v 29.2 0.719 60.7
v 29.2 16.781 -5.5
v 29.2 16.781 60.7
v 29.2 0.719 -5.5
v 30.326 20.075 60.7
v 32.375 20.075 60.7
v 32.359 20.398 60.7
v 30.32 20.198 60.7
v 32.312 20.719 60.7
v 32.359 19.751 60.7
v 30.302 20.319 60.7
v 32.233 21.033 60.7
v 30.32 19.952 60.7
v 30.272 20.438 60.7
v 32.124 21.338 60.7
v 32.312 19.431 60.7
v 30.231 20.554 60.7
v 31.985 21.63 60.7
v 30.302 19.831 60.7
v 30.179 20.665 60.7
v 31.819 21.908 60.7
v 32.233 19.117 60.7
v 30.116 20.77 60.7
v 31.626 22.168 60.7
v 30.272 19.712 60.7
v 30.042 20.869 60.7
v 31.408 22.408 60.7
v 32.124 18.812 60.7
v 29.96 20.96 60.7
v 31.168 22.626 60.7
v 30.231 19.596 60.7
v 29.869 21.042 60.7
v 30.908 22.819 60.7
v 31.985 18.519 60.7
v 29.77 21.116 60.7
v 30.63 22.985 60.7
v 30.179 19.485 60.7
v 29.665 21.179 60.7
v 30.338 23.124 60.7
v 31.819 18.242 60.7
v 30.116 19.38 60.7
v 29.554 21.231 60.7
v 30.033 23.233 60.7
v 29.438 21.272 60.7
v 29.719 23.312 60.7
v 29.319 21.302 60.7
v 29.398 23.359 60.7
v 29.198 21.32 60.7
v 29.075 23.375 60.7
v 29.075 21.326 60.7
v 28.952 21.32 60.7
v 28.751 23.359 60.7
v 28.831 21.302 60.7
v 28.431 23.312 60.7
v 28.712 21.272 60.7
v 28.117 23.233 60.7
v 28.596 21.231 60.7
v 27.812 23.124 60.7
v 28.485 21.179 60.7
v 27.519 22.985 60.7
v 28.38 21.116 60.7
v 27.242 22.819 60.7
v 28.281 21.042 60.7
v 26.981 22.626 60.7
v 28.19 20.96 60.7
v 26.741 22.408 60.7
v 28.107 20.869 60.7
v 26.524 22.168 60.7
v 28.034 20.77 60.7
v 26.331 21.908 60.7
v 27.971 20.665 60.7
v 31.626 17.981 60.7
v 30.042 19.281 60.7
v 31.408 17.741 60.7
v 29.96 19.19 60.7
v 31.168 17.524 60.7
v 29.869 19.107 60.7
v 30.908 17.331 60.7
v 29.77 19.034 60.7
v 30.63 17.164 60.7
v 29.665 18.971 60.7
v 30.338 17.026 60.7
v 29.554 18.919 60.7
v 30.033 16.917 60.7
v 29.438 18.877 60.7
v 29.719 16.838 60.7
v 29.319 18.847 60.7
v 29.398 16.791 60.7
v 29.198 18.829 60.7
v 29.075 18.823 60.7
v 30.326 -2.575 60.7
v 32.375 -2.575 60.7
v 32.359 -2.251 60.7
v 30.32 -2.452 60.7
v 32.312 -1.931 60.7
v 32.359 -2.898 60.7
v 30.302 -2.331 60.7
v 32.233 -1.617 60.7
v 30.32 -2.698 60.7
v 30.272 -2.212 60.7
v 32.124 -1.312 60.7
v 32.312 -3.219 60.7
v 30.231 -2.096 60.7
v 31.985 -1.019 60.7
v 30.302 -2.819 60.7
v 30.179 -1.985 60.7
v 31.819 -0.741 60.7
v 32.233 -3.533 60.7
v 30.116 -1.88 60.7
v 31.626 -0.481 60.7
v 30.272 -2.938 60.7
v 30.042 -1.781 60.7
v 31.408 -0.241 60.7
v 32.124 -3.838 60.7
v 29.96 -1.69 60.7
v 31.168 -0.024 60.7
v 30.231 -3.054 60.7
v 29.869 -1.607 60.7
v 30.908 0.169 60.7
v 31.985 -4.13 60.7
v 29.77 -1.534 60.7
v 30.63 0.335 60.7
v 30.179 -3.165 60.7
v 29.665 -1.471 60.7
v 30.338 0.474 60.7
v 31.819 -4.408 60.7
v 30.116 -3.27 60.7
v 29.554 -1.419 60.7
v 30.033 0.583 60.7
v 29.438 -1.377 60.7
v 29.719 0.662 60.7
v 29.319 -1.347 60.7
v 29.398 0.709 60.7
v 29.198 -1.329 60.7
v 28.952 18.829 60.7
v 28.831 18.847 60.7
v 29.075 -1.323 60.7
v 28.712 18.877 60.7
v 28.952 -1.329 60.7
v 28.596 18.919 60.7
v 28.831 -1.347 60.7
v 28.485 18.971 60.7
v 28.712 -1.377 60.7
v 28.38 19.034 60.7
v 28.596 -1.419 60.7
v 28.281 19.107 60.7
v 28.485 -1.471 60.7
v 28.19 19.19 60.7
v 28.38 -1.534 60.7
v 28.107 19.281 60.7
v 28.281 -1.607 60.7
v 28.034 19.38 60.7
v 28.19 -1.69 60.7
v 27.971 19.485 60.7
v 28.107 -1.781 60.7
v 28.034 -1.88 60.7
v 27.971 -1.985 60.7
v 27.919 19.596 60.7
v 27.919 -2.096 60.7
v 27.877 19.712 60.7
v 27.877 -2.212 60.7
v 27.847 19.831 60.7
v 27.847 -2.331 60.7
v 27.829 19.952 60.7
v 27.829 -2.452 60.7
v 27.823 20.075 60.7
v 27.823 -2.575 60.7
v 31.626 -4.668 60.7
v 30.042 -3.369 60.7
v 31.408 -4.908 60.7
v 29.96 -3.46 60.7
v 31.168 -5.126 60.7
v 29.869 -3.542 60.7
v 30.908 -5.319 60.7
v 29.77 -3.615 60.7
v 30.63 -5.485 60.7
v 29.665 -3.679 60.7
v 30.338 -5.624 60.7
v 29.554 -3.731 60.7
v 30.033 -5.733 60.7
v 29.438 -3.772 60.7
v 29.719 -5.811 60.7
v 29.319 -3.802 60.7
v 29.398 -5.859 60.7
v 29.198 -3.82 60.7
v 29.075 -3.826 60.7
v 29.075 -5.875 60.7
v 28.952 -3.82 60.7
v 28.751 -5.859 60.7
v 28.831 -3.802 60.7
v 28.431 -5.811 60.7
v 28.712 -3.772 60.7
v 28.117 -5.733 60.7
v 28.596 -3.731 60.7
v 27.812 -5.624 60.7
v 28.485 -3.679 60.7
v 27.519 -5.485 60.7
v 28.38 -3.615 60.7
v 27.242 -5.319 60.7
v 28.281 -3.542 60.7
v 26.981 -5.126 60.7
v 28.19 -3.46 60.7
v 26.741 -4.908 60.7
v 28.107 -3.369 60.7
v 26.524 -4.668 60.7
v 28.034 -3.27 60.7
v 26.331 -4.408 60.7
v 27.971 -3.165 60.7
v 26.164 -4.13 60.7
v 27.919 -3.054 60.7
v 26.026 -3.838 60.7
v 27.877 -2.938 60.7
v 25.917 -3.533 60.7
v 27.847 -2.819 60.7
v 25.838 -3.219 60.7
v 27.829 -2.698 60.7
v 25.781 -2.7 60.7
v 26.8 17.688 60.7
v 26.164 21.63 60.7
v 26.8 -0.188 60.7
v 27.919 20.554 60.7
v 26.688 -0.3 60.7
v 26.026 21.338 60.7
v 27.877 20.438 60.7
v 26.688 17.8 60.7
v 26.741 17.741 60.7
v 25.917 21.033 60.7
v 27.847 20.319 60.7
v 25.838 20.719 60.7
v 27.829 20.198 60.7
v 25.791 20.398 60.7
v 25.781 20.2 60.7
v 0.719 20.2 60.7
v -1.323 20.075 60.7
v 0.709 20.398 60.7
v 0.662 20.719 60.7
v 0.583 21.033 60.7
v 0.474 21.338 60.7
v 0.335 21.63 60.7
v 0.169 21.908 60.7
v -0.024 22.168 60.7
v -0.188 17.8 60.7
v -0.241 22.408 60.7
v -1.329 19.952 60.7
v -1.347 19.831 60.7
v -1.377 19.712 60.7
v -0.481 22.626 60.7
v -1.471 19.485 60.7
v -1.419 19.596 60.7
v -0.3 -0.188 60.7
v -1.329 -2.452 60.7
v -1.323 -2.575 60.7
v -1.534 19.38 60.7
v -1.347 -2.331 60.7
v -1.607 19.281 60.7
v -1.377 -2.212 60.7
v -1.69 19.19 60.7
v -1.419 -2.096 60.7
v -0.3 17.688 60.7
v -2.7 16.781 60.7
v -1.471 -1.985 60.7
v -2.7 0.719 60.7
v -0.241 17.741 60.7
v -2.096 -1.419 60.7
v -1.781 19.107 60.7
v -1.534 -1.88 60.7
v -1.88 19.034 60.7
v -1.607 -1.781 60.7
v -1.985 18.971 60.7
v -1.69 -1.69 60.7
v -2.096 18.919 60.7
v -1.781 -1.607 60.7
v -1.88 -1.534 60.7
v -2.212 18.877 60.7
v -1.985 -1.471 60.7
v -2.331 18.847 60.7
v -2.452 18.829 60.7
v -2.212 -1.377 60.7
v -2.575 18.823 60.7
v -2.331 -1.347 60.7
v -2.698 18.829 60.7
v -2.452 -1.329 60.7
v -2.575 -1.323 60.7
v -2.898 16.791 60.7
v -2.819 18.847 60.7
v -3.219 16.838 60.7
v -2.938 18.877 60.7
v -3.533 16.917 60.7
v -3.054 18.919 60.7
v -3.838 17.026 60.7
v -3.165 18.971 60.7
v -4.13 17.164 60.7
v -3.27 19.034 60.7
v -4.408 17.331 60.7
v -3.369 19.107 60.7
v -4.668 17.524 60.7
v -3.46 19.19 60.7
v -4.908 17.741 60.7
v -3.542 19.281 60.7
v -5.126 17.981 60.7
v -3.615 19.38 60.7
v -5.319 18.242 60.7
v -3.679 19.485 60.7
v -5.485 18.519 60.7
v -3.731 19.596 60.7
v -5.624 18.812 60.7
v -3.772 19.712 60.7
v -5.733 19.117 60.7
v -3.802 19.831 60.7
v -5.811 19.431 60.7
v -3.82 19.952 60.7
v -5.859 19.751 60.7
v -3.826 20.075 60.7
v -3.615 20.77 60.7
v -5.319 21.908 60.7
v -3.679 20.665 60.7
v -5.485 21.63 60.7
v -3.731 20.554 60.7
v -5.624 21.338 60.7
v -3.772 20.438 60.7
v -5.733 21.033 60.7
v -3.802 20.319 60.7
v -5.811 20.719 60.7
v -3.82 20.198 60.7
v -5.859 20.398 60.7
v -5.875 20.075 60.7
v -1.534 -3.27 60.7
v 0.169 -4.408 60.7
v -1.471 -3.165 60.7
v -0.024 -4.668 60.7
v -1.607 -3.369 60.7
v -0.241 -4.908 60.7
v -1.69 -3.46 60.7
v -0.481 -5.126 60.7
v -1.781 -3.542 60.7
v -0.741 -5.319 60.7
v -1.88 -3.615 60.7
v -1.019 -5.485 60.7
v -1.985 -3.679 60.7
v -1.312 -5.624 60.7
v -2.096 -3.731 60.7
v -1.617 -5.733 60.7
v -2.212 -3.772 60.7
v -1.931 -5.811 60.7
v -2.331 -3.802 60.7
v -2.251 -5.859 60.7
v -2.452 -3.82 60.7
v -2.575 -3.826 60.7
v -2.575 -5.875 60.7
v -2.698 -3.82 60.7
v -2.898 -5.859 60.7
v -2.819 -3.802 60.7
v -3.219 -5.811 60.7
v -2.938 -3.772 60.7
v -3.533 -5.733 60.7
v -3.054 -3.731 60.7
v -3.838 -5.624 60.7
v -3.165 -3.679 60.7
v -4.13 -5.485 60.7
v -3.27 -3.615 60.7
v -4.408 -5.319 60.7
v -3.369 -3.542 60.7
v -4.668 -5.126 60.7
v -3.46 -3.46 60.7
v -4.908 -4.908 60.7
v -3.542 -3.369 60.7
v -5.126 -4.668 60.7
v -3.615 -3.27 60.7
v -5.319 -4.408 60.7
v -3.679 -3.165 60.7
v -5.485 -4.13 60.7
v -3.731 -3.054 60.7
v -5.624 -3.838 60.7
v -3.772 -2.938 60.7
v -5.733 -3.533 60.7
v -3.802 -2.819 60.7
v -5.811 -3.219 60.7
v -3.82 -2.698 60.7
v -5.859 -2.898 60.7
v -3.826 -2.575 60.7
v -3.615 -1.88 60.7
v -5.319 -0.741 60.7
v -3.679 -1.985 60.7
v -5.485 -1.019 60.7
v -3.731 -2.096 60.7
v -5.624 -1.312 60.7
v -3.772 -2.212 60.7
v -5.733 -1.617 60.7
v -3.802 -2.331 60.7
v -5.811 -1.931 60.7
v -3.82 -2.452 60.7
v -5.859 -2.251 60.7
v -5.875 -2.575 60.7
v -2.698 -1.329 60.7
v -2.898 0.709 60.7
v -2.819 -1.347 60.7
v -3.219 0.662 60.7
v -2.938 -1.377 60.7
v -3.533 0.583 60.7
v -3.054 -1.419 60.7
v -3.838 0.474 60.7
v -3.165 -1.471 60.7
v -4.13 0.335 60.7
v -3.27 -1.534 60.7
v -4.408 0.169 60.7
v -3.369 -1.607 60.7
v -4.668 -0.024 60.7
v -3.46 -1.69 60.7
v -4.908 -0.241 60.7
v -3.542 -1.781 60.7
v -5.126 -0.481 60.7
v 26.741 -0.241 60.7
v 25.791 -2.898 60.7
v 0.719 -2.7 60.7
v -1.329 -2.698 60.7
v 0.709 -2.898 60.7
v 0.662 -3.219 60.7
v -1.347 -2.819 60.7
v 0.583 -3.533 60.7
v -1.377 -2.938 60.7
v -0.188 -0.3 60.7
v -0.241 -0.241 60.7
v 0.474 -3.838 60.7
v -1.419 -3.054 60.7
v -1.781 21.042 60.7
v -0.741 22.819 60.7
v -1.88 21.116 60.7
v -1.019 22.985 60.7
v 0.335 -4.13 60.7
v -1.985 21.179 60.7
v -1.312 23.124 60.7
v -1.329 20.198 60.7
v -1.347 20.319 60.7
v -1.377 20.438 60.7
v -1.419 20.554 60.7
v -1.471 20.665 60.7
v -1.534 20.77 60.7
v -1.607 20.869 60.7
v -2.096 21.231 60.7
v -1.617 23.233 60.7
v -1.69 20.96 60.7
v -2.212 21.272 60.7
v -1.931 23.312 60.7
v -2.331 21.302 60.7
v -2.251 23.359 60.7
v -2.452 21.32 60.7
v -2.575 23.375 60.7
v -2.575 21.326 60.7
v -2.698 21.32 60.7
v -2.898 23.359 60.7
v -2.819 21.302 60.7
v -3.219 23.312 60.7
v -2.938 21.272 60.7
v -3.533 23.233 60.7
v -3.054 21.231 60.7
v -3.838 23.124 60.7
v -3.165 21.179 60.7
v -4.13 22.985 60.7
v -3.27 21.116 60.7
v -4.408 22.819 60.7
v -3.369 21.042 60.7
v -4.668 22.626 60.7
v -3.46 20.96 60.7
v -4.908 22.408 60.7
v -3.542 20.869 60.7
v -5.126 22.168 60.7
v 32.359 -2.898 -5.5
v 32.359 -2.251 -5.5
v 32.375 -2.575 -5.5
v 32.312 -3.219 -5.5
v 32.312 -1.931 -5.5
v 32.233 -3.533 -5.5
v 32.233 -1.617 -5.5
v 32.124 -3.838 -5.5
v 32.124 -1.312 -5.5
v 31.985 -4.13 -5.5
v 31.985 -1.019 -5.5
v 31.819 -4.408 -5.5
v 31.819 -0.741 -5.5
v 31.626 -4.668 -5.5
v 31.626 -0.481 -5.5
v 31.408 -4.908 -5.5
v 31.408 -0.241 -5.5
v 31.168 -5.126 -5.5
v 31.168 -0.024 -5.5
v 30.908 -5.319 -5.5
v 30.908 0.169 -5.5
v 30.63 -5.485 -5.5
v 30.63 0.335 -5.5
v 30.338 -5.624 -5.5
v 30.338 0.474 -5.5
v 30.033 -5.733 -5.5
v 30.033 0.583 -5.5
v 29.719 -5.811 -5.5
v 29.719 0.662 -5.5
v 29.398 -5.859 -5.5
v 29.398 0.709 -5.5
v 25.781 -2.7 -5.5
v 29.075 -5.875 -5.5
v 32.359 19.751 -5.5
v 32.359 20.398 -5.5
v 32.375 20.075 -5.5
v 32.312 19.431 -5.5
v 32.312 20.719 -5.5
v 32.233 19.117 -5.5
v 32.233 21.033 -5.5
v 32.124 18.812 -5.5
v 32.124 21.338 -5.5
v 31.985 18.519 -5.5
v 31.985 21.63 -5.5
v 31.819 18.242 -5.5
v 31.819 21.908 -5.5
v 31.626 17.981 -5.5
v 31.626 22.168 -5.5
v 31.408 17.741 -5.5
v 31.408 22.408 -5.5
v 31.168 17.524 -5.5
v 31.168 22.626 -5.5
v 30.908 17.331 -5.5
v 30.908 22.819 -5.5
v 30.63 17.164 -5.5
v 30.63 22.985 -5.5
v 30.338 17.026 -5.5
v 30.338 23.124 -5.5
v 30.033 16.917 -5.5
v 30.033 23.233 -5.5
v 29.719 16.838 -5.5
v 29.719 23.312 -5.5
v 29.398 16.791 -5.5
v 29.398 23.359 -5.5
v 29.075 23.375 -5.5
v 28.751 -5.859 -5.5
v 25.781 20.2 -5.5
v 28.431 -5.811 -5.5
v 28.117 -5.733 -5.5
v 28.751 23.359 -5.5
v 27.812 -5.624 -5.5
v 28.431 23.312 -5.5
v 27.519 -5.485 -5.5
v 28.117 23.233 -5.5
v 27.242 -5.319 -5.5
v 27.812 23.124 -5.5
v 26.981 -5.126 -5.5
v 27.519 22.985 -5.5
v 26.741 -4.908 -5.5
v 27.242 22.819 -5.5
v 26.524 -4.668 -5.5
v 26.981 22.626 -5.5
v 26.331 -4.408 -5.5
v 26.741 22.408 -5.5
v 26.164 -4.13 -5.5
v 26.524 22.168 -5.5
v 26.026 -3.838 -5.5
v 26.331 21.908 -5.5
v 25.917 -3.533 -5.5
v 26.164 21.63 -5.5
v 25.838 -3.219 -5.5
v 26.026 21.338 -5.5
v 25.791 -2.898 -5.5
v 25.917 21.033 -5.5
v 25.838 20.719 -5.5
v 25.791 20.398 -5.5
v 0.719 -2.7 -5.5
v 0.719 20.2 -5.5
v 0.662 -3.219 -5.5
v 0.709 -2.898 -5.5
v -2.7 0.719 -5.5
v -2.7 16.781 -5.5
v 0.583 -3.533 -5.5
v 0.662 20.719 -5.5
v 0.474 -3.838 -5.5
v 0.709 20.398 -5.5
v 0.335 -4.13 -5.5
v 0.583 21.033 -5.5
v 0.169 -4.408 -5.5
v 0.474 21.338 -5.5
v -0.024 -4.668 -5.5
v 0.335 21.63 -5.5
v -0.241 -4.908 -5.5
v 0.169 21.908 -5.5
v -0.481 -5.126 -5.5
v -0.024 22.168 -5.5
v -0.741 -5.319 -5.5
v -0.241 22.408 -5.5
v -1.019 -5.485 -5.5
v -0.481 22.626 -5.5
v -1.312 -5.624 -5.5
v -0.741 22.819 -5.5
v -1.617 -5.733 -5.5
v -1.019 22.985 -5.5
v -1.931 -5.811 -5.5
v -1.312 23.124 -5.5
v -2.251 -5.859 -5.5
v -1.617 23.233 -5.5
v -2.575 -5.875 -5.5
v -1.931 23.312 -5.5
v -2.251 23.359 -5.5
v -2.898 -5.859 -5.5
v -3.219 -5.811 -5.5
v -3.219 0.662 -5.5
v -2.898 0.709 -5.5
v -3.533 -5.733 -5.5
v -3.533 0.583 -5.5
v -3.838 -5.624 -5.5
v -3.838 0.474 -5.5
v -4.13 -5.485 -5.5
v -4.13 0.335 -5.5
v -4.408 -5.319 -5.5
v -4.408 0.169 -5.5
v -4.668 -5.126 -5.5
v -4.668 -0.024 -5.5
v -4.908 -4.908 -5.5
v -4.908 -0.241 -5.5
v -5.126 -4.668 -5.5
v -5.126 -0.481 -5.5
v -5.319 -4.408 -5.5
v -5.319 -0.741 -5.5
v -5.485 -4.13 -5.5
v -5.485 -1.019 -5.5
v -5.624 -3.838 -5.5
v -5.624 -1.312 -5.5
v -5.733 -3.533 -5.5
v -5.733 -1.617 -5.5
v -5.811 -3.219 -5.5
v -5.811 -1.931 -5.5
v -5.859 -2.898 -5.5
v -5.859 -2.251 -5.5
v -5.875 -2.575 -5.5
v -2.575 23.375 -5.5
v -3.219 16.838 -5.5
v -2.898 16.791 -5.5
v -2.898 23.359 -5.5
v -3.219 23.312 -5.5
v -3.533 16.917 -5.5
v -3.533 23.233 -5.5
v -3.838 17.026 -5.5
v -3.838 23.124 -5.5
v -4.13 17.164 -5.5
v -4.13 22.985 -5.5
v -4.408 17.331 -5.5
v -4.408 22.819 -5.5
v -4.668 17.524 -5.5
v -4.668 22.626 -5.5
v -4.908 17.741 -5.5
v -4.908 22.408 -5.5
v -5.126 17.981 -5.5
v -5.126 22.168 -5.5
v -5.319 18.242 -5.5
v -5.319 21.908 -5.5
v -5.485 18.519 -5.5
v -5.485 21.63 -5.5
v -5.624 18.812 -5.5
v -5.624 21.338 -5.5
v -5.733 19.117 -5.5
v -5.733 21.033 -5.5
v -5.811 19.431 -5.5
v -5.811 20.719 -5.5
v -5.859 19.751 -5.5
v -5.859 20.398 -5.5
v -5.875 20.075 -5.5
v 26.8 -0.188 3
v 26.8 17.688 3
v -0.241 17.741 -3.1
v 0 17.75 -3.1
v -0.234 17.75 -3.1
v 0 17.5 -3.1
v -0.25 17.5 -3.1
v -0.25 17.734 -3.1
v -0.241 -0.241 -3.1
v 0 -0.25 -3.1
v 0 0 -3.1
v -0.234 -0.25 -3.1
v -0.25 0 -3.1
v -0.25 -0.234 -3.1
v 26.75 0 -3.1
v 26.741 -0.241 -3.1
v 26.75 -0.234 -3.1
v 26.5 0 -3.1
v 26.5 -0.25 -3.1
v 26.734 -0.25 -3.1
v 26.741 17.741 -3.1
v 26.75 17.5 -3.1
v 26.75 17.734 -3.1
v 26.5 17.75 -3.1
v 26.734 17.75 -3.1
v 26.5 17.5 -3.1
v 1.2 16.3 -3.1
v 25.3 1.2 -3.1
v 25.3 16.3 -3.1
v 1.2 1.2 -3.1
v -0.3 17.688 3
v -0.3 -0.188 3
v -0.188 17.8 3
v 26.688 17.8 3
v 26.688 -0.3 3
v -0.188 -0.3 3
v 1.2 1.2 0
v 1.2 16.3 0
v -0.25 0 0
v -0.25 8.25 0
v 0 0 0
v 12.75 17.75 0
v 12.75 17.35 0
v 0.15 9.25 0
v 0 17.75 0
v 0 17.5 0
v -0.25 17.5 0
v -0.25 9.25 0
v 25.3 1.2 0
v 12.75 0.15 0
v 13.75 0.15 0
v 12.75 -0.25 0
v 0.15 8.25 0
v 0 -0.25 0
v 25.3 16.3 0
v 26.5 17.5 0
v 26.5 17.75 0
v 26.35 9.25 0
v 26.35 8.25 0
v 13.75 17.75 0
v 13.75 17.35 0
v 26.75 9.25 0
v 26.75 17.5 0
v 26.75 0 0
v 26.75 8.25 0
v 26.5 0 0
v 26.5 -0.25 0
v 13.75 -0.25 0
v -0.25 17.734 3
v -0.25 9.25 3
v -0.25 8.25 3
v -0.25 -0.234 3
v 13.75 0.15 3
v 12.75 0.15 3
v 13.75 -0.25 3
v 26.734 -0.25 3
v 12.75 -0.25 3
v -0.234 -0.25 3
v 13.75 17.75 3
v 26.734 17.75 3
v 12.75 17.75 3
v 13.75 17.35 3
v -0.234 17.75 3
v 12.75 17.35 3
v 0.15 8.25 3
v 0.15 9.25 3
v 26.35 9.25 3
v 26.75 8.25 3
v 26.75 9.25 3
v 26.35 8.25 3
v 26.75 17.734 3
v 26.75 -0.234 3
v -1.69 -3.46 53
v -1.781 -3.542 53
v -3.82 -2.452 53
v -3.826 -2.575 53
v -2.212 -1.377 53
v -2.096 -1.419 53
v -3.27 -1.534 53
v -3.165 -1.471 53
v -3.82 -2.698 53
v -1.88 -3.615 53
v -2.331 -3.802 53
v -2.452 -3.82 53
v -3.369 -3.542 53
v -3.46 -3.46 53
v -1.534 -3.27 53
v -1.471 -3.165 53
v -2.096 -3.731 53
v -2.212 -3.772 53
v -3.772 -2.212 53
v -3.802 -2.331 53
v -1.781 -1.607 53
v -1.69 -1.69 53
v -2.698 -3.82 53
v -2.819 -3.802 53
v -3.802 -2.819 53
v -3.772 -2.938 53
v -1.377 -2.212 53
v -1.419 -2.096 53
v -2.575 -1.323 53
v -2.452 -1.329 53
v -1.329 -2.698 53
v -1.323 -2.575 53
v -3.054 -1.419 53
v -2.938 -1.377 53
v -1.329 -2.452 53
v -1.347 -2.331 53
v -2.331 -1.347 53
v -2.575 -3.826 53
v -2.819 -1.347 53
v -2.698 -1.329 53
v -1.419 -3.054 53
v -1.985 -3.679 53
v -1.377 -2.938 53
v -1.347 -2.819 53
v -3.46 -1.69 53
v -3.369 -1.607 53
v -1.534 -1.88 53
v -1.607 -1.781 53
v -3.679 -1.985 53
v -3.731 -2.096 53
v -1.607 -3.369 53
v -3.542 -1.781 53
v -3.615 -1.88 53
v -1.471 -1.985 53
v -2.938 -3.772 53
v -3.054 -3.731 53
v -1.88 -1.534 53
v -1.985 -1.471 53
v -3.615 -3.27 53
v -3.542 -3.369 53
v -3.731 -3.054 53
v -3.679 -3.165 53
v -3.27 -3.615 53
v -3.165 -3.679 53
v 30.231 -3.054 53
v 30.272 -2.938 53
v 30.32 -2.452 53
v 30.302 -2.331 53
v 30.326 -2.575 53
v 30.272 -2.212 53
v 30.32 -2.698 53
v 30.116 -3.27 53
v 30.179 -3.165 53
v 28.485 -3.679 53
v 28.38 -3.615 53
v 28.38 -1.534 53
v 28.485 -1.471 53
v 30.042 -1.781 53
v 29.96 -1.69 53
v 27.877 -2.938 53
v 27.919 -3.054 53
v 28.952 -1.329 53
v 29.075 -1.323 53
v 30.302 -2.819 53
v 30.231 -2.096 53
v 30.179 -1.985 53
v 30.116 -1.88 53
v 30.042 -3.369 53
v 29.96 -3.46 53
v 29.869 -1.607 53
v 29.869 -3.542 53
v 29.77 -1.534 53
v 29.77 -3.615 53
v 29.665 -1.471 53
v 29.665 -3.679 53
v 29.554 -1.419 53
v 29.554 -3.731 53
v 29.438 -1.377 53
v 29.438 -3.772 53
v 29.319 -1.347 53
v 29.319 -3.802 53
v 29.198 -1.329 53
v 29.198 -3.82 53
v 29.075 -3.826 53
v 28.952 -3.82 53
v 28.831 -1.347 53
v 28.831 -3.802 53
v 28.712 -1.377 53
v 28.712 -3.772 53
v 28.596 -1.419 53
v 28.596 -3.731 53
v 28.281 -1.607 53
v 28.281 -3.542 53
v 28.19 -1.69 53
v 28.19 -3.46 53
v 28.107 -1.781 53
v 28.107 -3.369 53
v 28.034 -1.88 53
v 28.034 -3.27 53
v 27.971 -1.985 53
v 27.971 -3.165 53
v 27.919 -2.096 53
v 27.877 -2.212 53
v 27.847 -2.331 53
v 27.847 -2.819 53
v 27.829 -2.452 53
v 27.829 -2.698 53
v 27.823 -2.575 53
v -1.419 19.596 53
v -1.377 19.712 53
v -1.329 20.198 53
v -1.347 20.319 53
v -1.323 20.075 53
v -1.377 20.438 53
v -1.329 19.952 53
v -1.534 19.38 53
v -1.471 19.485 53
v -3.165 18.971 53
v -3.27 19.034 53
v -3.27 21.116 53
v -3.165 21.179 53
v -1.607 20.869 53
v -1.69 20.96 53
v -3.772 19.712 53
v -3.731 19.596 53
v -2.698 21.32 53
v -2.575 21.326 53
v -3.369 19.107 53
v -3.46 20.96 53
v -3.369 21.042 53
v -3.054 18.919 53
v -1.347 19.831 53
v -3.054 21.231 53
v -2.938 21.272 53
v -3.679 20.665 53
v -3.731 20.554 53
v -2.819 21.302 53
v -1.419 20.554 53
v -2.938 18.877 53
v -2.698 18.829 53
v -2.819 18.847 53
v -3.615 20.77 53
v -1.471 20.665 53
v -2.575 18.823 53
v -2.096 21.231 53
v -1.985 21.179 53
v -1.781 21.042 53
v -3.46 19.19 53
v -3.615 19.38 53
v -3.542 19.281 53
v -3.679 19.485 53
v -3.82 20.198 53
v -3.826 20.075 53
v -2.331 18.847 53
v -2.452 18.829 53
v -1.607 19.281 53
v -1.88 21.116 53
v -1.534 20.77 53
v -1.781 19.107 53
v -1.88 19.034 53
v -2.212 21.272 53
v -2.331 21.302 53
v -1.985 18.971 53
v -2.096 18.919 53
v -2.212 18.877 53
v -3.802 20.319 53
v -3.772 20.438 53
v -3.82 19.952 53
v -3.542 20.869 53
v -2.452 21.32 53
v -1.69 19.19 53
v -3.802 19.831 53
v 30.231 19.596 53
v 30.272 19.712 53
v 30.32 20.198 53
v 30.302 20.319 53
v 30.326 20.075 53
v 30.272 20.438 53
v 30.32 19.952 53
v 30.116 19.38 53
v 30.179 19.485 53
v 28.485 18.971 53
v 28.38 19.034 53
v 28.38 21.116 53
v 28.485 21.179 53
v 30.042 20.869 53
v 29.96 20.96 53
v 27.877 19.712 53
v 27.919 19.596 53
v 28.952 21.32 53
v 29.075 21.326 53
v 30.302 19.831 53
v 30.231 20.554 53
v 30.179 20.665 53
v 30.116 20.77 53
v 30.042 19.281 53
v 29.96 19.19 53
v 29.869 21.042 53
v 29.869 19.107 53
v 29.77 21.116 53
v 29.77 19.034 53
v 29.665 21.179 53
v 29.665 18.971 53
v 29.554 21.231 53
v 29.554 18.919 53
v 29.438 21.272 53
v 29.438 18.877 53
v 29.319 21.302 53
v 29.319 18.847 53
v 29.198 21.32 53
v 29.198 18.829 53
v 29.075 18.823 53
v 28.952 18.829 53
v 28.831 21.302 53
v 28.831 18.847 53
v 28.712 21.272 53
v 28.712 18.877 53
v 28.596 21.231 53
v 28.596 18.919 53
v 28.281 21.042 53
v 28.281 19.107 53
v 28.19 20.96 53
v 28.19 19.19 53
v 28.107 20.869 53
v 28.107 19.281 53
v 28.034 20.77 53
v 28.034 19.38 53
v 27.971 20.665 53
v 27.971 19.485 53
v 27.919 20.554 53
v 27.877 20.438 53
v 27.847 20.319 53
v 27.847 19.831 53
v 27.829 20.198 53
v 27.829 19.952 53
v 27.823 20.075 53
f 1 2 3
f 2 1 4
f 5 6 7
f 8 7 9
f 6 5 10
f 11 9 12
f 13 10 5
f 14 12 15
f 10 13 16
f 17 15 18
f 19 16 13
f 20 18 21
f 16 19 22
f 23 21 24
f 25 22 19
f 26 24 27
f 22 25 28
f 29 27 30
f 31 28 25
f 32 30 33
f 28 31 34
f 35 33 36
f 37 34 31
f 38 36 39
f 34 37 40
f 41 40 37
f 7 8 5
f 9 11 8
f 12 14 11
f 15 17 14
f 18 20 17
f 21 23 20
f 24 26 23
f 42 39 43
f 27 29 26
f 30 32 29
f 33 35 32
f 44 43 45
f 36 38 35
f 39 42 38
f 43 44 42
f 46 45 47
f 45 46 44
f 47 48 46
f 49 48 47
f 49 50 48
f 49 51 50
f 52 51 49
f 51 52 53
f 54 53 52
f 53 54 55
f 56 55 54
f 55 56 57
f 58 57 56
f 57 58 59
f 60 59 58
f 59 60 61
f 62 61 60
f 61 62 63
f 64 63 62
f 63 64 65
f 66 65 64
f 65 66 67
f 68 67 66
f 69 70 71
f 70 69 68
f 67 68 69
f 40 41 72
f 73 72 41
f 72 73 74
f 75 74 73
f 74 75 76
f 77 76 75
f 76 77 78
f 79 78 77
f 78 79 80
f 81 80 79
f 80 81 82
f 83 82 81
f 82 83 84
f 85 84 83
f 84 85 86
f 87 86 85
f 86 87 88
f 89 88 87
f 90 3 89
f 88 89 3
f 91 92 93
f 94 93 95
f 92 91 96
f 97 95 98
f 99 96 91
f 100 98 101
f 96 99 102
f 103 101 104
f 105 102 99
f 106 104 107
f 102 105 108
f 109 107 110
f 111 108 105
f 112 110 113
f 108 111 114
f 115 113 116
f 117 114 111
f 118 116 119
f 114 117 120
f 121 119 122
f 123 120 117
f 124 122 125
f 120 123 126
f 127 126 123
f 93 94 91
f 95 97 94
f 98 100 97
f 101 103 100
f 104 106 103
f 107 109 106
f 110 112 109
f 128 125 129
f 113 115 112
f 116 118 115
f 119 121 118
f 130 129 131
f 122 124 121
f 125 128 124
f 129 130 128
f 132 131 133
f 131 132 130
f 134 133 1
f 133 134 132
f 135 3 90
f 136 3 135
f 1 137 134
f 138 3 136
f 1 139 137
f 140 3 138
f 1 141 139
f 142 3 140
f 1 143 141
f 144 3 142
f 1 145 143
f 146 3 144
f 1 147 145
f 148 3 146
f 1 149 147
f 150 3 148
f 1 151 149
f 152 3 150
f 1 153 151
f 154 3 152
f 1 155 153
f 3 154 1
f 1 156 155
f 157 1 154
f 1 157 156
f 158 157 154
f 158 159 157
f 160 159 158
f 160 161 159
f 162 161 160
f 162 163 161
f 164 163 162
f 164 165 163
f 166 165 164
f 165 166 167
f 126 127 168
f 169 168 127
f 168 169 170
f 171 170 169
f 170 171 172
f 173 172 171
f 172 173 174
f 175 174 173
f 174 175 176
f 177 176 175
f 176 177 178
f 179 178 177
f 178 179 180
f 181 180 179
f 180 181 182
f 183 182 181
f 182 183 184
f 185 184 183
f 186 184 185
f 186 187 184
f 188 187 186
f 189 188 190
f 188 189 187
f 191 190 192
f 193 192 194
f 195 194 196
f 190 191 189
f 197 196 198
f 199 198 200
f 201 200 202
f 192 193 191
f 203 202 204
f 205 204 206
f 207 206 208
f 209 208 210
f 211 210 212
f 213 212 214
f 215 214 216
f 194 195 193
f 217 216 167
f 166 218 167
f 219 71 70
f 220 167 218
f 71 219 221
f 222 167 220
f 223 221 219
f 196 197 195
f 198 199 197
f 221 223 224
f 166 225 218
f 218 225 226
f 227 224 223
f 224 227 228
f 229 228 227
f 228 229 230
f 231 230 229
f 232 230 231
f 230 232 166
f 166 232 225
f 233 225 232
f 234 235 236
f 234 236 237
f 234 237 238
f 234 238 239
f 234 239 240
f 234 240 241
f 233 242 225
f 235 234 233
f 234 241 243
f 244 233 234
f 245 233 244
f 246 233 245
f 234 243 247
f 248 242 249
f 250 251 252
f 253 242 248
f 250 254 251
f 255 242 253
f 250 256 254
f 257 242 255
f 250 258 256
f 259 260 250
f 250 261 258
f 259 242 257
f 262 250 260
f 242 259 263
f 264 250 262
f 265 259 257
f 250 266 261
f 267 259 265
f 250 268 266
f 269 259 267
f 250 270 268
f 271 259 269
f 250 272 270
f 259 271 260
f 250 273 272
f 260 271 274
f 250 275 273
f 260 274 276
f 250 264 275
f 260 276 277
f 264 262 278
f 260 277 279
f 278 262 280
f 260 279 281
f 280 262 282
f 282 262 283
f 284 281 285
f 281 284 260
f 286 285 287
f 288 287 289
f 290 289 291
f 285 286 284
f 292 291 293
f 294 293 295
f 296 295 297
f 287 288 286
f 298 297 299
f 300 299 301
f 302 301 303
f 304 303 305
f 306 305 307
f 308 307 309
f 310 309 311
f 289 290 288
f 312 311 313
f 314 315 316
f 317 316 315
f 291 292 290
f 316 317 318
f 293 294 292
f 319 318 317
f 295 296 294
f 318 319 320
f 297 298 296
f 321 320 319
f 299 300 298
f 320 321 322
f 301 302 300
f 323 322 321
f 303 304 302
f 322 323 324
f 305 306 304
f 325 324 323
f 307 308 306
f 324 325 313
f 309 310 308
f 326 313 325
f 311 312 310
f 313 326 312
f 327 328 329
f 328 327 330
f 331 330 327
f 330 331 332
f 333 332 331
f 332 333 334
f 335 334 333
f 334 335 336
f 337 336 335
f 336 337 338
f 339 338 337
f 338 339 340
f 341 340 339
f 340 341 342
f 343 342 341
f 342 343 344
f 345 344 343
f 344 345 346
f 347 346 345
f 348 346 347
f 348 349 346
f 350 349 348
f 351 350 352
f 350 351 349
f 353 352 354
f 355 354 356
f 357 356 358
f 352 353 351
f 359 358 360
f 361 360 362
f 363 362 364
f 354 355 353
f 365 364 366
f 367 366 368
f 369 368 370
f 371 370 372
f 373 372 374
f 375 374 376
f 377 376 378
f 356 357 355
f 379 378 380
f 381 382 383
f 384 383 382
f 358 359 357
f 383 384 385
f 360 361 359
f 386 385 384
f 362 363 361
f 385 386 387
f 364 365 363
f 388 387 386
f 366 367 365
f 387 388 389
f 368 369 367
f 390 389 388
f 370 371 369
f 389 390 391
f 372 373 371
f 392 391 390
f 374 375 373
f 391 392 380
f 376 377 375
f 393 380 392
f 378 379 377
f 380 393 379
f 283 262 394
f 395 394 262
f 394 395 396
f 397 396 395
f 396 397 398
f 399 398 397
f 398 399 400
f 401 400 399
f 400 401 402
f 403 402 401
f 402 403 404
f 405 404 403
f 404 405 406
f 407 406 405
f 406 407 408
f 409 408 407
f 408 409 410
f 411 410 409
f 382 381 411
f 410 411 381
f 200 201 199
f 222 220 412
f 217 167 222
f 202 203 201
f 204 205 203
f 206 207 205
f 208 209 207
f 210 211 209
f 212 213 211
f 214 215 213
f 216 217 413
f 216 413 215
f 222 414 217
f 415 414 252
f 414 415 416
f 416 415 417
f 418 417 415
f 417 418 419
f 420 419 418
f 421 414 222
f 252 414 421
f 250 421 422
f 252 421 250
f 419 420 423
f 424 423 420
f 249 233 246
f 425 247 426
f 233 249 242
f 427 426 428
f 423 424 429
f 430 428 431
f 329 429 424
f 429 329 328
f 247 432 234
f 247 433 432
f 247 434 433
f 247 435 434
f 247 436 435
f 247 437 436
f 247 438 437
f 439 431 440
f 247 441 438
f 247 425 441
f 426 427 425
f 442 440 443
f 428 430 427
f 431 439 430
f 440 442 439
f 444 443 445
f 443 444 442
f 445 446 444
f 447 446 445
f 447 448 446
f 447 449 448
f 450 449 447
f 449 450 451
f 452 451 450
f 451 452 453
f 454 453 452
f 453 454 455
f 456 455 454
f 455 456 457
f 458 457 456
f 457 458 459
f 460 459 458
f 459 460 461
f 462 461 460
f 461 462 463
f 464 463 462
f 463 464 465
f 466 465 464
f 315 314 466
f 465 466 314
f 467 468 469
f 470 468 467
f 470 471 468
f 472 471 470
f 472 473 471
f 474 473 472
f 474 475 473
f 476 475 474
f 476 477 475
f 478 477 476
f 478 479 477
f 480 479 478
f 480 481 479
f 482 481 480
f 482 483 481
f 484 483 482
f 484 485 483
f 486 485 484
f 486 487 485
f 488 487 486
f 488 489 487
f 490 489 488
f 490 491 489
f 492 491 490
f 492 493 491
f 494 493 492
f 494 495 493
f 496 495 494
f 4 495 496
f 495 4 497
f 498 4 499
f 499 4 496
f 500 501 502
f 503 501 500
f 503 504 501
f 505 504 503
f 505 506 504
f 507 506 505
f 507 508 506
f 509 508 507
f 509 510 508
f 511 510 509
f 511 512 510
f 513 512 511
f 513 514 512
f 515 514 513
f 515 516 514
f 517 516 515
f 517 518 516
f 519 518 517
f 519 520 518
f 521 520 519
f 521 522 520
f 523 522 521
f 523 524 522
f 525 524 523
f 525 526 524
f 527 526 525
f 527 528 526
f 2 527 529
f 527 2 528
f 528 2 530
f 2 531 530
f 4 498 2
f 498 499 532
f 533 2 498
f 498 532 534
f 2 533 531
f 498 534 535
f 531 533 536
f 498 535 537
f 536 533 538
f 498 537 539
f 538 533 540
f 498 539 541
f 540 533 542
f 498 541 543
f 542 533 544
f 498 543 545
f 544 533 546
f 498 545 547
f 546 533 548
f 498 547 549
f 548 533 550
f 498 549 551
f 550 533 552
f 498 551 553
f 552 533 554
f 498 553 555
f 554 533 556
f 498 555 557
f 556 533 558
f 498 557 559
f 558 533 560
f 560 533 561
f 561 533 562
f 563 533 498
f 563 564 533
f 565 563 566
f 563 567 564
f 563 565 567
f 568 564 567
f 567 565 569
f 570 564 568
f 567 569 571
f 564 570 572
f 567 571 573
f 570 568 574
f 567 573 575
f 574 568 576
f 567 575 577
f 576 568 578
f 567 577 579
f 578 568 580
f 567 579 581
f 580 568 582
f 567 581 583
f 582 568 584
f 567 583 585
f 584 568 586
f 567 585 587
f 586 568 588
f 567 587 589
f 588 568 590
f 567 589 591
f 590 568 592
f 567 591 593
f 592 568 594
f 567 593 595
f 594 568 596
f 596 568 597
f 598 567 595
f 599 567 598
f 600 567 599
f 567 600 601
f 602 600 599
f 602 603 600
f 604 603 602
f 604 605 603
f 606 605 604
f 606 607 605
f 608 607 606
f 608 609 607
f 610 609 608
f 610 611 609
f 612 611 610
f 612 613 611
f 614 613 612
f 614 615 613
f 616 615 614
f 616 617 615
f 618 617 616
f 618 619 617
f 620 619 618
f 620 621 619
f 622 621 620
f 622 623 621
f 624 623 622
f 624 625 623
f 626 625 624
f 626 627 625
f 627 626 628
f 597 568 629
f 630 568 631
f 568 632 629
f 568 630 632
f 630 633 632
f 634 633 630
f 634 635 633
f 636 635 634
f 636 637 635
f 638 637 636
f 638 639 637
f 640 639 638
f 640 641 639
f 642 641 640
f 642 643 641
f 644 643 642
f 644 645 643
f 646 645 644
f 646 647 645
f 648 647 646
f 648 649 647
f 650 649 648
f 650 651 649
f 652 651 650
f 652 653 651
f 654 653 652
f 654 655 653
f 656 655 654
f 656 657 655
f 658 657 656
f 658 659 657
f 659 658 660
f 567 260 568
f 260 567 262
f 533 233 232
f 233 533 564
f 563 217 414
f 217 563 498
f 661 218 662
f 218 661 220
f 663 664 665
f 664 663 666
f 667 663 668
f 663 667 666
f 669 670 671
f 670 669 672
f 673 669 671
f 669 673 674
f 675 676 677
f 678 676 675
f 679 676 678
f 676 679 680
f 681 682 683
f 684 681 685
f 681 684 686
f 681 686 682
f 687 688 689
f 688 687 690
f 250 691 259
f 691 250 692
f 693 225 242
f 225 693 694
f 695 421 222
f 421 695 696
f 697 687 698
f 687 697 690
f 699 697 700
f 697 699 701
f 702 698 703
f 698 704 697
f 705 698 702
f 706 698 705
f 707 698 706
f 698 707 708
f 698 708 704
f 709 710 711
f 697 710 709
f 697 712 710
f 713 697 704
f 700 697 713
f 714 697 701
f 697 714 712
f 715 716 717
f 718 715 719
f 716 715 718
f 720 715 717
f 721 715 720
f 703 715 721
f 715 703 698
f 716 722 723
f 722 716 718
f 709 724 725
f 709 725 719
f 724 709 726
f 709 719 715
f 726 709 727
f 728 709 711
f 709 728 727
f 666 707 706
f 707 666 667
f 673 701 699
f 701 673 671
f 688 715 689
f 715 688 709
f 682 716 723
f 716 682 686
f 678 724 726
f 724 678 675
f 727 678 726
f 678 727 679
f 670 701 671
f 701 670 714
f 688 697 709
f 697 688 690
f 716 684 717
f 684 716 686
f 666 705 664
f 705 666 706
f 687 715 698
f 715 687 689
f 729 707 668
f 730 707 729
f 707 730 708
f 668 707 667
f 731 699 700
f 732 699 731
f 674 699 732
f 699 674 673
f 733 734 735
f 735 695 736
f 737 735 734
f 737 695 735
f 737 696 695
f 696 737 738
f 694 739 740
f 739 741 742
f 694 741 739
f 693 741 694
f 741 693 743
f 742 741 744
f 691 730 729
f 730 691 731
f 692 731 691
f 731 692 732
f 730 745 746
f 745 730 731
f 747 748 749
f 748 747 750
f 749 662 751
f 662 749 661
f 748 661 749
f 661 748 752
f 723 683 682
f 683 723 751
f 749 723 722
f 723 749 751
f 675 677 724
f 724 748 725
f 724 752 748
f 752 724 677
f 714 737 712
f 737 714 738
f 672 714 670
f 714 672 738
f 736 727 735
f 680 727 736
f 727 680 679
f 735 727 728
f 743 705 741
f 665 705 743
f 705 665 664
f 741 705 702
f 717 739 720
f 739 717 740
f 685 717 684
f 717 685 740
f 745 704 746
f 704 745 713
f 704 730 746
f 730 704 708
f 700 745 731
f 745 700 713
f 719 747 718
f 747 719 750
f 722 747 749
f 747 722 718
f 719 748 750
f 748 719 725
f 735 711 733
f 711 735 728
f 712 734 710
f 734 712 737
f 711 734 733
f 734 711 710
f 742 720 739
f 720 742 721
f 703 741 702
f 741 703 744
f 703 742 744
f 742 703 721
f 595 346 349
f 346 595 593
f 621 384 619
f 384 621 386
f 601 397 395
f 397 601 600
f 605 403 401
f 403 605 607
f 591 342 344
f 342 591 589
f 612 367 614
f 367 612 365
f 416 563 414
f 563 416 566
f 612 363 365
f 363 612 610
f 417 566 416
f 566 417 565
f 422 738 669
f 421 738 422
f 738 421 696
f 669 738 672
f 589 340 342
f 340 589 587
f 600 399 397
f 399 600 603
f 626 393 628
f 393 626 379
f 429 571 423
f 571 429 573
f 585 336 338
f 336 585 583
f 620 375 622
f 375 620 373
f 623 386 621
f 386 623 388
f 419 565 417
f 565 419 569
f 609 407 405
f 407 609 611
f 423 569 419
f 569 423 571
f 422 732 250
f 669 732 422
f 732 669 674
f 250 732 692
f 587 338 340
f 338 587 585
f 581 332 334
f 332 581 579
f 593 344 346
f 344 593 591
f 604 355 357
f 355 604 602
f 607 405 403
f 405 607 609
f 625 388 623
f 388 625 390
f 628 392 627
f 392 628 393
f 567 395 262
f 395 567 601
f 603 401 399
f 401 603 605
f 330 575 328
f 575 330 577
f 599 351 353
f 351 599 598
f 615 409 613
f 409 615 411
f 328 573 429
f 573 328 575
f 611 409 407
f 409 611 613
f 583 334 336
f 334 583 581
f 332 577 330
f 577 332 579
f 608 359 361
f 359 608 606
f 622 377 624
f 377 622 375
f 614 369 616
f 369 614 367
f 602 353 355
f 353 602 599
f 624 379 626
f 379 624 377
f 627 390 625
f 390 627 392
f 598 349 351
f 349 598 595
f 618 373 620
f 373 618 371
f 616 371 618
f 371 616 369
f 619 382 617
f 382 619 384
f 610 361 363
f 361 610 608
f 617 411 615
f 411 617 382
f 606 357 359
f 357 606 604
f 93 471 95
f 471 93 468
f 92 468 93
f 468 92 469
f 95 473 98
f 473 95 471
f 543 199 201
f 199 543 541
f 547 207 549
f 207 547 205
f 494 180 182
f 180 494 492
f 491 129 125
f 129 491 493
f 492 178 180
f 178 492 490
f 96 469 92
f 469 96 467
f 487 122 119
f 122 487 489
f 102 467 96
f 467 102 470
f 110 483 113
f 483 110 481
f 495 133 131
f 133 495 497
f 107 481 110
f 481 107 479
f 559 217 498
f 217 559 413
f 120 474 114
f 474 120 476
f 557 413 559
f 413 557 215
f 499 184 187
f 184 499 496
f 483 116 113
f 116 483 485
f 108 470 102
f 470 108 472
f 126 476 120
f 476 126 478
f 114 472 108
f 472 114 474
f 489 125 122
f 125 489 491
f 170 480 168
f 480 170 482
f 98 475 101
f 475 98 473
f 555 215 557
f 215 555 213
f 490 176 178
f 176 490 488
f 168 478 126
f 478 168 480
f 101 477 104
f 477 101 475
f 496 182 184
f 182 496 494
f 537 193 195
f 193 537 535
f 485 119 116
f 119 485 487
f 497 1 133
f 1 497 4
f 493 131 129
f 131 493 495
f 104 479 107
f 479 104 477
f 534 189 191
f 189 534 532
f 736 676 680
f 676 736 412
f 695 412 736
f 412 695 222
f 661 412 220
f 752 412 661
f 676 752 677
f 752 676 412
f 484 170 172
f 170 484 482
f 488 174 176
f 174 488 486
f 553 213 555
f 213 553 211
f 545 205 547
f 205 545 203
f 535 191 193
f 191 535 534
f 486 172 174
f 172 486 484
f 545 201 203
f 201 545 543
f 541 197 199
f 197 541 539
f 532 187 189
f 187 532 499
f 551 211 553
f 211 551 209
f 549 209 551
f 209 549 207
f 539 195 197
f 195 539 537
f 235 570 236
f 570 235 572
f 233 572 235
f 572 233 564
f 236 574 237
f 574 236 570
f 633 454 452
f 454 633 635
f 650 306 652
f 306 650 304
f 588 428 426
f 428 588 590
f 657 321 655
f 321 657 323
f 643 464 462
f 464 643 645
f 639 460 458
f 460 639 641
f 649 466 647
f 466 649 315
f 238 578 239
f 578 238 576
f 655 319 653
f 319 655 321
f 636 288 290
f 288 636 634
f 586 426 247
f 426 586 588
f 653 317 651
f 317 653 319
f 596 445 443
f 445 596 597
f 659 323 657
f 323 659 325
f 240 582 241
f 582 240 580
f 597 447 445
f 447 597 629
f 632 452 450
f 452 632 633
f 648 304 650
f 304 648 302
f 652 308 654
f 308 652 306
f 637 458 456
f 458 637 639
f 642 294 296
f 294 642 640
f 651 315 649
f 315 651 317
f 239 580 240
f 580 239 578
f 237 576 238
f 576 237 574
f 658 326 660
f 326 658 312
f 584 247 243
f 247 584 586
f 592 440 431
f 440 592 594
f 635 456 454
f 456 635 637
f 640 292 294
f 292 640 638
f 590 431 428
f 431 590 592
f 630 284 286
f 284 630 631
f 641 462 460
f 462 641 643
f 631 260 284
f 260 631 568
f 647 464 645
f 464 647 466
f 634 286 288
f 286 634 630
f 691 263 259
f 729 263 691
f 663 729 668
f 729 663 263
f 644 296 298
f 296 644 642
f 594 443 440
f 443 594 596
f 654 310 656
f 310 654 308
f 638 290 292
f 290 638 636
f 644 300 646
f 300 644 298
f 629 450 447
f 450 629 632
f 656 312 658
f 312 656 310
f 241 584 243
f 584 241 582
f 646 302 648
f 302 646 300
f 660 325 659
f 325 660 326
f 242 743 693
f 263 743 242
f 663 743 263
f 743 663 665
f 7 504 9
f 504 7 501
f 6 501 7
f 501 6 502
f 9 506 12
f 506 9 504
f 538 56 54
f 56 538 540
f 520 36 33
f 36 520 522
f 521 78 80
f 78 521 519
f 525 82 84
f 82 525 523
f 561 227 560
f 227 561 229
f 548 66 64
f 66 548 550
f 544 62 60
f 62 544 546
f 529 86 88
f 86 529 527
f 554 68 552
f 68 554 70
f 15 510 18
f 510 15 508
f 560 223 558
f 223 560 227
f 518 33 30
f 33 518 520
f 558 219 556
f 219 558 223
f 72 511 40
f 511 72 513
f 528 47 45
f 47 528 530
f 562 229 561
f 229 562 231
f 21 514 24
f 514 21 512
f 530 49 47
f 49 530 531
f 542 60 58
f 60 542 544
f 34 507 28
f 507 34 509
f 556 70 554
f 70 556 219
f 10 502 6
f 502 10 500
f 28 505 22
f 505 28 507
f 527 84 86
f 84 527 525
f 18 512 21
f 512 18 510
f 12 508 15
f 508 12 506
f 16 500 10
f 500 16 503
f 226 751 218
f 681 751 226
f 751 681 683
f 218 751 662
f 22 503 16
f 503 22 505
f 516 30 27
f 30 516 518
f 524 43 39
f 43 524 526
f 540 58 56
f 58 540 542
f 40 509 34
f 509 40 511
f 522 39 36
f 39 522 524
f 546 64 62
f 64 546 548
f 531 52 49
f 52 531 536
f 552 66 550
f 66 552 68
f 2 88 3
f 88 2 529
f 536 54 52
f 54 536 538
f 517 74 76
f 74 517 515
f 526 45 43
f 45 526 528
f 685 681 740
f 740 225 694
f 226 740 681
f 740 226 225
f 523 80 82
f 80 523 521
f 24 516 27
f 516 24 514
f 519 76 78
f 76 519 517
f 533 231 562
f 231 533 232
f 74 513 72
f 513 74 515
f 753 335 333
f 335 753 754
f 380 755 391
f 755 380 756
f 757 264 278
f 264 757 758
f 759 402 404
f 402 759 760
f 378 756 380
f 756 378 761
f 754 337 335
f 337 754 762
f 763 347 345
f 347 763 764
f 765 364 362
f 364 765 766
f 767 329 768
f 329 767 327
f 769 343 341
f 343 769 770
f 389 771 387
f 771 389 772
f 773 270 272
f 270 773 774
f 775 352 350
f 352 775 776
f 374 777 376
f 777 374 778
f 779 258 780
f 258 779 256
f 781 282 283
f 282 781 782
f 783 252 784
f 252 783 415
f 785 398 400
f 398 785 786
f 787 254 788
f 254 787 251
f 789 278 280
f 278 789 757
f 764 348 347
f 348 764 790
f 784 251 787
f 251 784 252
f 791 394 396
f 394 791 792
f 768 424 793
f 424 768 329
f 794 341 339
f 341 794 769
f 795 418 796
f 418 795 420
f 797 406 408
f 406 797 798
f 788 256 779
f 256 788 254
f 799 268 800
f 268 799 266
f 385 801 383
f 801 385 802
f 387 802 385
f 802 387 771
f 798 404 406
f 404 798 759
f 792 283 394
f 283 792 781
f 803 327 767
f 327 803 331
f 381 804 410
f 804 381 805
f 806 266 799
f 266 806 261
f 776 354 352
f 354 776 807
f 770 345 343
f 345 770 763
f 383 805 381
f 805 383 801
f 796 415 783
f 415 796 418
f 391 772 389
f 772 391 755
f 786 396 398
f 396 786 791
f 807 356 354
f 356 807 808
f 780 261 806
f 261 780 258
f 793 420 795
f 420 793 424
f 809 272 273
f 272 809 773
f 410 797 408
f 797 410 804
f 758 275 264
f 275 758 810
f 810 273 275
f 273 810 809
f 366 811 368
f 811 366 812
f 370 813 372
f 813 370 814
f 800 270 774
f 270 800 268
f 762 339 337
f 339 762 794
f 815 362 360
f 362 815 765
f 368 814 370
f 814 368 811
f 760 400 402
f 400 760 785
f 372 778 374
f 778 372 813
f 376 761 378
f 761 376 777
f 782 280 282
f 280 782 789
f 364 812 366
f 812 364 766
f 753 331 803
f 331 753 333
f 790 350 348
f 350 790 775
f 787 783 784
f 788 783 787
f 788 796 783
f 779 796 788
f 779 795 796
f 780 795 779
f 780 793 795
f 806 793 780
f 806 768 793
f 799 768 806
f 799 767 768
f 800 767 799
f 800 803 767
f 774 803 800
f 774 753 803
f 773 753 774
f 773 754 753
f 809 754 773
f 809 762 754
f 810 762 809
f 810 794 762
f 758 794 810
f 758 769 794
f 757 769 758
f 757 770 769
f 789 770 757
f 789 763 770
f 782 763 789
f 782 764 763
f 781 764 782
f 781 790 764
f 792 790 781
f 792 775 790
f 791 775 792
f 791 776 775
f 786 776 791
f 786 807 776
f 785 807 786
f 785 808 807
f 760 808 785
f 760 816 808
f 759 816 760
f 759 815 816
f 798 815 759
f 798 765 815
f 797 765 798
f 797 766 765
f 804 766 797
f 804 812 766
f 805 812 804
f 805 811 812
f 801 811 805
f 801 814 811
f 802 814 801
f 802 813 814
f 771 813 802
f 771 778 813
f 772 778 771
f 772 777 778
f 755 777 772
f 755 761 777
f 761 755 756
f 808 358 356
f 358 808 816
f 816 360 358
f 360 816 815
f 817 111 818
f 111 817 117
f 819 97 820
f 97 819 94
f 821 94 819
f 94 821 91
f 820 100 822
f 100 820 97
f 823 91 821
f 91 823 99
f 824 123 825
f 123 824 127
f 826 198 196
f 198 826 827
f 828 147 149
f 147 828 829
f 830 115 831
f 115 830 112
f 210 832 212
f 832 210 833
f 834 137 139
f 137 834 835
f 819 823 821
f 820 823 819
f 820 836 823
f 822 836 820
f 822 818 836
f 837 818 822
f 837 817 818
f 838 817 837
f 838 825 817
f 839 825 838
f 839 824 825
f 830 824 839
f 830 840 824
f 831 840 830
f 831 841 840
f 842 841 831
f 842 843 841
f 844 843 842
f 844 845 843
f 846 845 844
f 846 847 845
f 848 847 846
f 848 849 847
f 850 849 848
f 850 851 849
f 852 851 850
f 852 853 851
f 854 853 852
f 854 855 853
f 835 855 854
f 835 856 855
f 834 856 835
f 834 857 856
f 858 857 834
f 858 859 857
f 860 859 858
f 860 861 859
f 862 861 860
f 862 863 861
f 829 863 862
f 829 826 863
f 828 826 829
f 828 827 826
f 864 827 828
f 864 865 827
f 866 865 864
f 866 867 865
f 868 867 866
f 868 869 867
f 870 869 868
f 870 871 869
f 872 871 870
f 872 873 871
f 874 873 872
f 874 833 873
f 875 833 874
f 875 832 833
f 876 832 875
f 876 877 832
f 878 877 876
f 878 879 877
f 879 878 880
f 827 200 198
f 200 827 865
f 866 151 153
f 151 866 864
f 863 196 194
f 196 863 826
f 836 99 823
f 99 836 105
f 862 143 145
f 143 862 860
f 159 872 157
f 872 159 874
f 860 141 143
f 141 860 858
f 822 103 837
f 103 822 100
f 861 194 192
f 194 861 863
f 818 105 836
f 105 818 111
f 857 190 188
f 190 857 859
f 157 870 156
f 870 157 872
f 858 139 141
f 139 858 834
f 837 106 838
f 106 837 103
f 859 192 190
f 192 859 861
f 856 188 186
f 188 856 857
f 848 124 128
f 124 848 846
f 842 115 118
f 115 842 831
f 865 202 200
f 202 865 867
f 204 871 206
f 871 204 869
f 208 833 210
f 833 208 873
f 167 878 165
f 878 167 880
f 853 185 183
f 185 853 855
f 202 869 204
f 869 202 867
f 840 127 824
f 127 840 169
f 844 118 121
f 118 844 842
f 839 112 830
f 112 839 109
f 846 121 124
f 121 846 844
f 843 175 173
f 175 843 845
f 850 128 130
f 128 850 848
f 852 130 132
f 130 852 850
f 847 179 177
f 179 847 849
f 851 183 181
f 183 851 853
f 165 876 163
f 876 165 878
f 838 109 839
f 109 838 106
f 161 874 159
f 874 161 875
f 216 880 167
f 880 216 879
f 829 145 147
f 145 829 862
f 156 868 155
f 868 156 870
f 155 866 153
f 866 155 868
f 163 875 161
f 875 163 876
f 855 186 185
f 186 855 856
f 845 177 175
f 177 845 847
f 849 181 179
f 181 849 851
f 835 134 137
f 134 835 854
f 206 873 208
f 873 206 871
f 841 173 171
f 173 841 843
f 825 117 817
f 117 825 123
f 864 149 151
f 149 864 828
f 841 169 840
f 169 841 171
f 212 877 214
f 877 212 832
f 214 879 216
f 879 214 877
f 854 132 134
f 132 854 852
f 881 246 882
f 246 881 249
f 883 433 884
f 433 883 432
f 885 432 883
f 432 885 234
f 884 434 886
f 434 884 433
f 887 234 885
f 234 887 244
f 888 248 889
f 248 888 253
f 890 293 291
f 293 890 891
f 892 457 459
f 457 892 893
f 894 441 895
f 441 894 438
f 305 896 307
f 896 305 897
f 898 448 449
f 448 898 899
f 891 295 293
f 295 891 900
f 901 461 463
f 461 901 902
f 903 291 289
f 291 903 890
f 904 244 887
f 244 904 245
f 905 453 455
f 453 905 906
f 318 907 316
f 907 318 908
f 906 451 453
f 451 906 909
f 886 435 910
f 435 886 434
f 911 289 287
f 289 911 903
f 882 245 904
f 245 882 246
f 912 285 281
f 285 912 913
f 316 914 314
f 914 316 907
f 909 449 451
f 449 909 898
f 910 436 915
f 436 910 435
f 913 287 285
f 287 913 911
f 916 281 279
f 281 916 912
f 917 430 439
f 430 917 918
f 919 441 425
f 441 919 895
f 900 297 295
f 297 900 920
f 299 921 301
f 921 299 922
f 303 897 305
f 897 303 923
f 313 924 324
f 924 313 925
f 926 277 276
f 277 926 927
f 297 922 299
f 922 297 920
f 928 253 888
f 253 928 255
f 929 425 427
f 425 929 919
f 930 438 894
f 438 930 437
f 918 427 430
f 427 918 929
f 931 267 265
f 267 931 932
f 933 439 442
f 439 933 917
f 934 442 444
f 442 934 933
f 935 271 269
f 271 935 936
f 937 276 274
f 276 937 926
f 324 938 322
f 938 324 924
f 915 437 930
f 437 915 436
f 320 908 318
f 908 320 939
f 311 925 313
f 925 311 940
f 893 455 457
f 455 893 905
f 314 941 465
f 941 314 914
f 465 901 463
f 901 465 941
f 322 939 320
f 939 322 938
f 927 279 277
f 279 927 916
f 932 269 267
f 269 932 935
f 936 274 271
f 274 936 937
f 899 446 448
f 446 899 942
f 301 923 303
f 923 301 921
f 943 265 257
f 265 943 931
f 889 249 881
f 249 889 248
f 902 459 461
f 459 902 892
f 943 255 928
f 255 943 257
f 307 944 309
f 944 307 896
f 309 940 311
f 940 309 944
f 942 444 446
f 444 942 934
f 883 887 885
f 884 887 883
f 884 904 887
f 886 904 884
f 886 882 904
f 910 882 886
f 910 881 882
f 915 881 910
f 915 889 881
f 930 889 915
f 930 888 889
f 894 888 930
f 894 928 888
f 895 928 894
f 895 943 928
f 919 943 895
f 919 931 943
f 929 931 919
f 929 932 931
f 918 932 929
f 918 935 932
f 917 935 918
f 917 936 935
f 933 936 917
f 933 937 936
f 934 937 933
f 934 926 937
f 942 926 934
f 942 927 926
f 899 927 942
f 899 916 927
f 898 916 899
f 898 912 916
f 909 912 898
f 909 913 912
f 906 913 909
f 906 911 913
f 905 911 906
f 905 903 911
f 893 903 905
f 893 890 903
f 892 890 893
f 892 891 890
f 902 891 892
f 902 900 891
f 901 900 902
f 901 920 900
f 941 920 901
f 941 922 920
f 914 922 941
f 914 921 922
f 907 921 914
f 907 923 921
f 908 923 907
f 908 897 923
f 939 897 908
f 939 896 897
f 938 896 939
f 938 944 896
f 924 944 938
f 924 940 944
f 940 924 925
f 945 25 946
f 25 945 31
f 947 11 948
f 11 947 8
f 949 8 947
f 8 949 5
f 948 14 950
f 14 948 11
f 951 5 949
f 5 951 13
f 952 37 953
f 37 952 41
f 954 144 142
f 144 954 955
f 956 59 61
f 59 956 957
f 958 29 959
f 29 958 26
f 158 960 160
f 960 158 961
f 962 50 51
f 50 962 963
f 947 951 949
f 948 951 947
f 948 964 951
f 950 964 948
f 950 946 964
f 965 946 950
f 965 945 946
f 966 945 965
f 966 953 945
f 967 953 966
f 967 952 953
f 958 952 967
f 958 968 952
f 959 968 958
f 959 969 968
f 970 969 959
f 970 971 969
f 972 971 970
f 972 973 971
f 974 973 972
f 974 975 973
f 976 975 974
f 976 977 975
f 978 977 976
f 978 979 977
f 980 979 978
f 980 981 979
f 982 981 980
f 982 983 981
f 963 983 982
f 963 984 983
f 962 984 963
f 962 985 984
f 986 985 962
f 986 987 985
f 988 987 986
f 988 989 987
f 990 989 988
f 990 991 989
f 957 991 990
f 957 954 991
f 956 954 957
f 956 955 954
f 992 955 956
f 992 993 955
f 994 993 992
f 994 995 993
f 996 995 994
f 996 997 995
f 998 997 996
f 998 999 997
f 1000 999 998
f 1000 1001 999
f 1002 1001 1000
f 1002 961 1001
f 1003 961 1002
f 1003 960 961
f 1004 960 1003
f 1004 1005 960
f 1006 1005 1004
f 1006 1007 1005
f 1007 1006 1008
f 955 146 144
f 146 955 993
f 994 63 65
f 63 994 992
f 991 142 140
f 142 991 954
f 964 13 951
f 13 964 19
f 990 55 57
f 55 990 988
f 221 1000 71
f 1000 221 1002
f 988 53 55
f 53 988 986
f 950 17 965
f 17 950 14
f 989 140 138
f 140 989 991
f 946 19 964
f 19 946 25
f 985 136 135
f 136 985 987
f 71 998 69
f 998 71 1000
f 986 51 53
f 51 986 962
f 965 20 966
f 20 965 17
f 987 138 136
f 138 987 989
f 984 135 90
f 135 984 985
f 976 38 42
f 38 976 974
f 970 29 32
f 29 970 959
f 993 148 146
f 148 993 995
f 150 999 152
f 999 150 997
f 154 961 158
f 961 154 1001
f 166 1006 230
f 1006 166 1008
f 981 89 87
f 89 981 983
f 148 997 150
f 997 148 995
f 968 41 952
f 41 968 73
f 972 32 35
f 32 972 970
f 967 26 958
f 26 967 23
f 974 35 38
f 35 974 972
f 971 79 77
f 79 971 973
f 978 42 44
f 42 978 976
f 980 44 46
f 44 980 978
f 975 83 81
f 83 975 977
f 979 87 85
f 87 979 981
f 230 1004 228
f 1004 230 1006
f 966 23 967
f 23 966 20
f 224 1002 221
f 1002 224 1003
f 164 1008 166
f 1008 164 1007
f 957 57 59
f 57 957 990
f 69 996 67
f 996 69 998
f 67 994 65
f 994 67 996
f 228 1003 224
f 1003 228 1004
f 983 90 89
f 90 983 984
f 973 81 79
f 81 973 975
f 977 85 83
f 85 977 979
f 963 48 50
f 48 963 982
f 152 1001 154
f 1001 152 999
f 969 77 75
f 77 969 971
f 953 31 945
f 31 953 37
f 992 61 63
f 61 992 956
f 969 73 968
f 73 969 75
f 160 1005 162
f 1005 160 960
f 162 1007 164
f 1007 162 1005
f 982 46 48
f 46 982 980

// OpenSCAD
// body base
difference() {
  union() {
    // body base (tray)
    multmatrix([[1, 0, 0, 13.25], [0, 1, 0, 8.75], [0, 0, 1, -5.5], [0, 0, 0, 1]]) difference() { translate([-15.95, -11.45, 0]) cube([31.9, 22.9, 66.2]); translate([0, 0, 2.4]) translate([-13.55, -9.05, 0]) cube([27.1, 18.1, 64.8]); }
    // add cradle_support_xm_1 (support)
    multmatrix([[1, 0, 0, -0.125], [0, 1, 0, 8.75], [0, 0, 1, -5.5], [0, 0, 0, 1]]) translate([-1.325, -8.75, 0]) cube([2.65, 17.5, 5.5]);
    // add cradle_support_xp_1 (support)
    multmatrix([[1, 0, 0, 26.625], [0, 1, 0, 8.75], [0, 0, 1, -5.5], [0, 0, 0, 1]]) translate([-1.325, -8.75, 0]) cube([2.65, 17.5, 5.5]);
    // add cradle_support_ym_1 (support)
    multmatrix([[1, 0, 0, 13.25], [0, 1, 0, -0.125], [0, 0, 1, -5.5], [0, 0, 0, 1]]) translate([-13.25, -1.325, 0]) cube([26.5, 2.65, 5.5]);
    // add cradle_support_yp_1 (support)
    multmatrix([[1, 0, 0, 13.25], [0, 1, 0, 17.625], [0, 0, 1, -5.5], [0, 0, 0, 1]]) translate([-13.25, -1.325, 0]) cube([26.5, 2.65, 5.5]);
    // add cradle_rim_xm_1 (rim)
    multmatrix([[1, 0, 0, -0.85], [0, 1, 0, 8.75], [0, 0, 1, -5.5], [0, 0, 0, 1]]) translate([-0.6, -10.2, 0]) cube([1.2, 20.4, 8.5]);
    // add cradle_rim_xp_1 (rim)
    multmatrix([[1, 0, 0, 27.35], [0, 1, 0, 8.75], [0, 0, 1, -5.5], [0, 0, 0, 1]]) translate([-0.6, -10.2, 0]) cube([1.2, 20.4, 8.5]);
    // add cradle_rim_ym_1 (rim)
    multmatrix([[1, 0, 0, 13.25], [0, 1, 0, -0.85], [0, 0, 1, -5.5], [0, 0, 0, 1]]) translate([-13.5, -0.6, 0]) cube([27, 1.2, 8.5]);
    // add cradle_rim_yp_1 (rim)
    multmatrix([[1, 0, 0, 13.25], [0, 1, 0, 18.35], [0, 0, 1, -5.5], [0, 0, 0, 1]]) translate([-13.5, -0.6, 0]) cube([27, 1.2, 8.5]);
    // add cradle_rib_xm_1 (crush_rib)
    multmatrix([[1, 0, 0, -0.35], [0, 1, 0, 8.75], [0, 0, 1, 0], [0, 0, 0, 1]]) translate([-0.5, -0.5, 0]) cube([1, 1, 3]);
    // add cradle_rib_xp_1 (crush_rib)
    multmatrix([[1, 0, 0, 26.85], [0, 1, 0, 8.75], [0, 0, 1, 0], [0, 0, 0, 1]]) translate([-0.5, -0.5, 0]) cube([1, 1, 3]);
    // add cradle_rib_ym_1 (crush_rib)
    multmatrix([[1, 0, 0, 13.25], [0, 1, 0, -0.35], [0, 0, 1, 0], [0, 0, 0, 1]]) translate([-0.5, -0.5, 0]) cube([1, 1, 3]);
    // add cradle_rib_yp_1 (crush_rib)
    multmatrix([[1, 0, 0, 13.25], [0, 1, 0, 17.85], [0, 0, 1, 0], [0, 0, 0, 1]]) translate([-0.5, -0.5, 0]) cube([1, 1, 3]);
    // add boss_1 (boss)
    multmatrix([[1, 0, 0, -2.574874], [0, 1, 0, -2.574874], [0, 0, 1, -5.5], [0, 0, 0, 1]]) cylinder(h=66.2, d=6.6, $fn=64);
    // add boss_2 (boss)
    multmatrix([[1, 0, 0, 29.074874], [0, 1, 0, -2.574874], [0, 0, 1, -5.5], [0, 0, 0, 1]]) cylinder(h=66.2, d=6.6, $fn=64);
    // add boss_3 (boss)
    multmatrix([[1, 0, 0, -2.574874], [0, 1, 0, 20.074874], [0, 0, 1, -5.5], [0, 0, 0, 1]]) cylinder(h=66.2, d=6.6, $fn=64);
    // add boss_4 (boss)
    multmatrix([[1, 0, 0, 29.074874], [0, 1, 0, 20.074874], [0, 0, 1, -5.5], [0, 0, 0, 1]]) cylinder(h=66.2, d=6.6, $fn=64);
  }
  // cut boss_1_pilot (pilot)
  multmatrix([[1, 0, 0, -2.574874], [0, 1, 0, -2.574874], [0, 0, 1, 53], [0, 0, 0, 1]]) cylinder(h=8.7, d=2.503015, $fn=64);
  // cut boss_2_pilot (pilot)
  multmatrix([[1, 0, 0, 29.074874], [0, 1, 0, -2.574874], [0, 0, 1, 53], [0, 0, 0, 1]]) cylinder(h=8.7, d=2.503015, $fn=64);
  // cut boss_3_pilot (pilot)
  multmatrix([[1, 0, 0, -2.574874], [0, 1, 0, 20.074874], [0, 0, 1, 53], [0, 0, 0, 1]]) cylinder(h=8.7, d=2.503015, $fn=64);
  // cut boss_4_pilot (pilot)
  multmatrix([[1, 0, 0, 29.074874], [0, 1, 0, 20.074874], [0, 0, 1, 53], [0, 0, 0, 1]]) cylinder(h=8.7, d=2.503015, $fn=64);
}
